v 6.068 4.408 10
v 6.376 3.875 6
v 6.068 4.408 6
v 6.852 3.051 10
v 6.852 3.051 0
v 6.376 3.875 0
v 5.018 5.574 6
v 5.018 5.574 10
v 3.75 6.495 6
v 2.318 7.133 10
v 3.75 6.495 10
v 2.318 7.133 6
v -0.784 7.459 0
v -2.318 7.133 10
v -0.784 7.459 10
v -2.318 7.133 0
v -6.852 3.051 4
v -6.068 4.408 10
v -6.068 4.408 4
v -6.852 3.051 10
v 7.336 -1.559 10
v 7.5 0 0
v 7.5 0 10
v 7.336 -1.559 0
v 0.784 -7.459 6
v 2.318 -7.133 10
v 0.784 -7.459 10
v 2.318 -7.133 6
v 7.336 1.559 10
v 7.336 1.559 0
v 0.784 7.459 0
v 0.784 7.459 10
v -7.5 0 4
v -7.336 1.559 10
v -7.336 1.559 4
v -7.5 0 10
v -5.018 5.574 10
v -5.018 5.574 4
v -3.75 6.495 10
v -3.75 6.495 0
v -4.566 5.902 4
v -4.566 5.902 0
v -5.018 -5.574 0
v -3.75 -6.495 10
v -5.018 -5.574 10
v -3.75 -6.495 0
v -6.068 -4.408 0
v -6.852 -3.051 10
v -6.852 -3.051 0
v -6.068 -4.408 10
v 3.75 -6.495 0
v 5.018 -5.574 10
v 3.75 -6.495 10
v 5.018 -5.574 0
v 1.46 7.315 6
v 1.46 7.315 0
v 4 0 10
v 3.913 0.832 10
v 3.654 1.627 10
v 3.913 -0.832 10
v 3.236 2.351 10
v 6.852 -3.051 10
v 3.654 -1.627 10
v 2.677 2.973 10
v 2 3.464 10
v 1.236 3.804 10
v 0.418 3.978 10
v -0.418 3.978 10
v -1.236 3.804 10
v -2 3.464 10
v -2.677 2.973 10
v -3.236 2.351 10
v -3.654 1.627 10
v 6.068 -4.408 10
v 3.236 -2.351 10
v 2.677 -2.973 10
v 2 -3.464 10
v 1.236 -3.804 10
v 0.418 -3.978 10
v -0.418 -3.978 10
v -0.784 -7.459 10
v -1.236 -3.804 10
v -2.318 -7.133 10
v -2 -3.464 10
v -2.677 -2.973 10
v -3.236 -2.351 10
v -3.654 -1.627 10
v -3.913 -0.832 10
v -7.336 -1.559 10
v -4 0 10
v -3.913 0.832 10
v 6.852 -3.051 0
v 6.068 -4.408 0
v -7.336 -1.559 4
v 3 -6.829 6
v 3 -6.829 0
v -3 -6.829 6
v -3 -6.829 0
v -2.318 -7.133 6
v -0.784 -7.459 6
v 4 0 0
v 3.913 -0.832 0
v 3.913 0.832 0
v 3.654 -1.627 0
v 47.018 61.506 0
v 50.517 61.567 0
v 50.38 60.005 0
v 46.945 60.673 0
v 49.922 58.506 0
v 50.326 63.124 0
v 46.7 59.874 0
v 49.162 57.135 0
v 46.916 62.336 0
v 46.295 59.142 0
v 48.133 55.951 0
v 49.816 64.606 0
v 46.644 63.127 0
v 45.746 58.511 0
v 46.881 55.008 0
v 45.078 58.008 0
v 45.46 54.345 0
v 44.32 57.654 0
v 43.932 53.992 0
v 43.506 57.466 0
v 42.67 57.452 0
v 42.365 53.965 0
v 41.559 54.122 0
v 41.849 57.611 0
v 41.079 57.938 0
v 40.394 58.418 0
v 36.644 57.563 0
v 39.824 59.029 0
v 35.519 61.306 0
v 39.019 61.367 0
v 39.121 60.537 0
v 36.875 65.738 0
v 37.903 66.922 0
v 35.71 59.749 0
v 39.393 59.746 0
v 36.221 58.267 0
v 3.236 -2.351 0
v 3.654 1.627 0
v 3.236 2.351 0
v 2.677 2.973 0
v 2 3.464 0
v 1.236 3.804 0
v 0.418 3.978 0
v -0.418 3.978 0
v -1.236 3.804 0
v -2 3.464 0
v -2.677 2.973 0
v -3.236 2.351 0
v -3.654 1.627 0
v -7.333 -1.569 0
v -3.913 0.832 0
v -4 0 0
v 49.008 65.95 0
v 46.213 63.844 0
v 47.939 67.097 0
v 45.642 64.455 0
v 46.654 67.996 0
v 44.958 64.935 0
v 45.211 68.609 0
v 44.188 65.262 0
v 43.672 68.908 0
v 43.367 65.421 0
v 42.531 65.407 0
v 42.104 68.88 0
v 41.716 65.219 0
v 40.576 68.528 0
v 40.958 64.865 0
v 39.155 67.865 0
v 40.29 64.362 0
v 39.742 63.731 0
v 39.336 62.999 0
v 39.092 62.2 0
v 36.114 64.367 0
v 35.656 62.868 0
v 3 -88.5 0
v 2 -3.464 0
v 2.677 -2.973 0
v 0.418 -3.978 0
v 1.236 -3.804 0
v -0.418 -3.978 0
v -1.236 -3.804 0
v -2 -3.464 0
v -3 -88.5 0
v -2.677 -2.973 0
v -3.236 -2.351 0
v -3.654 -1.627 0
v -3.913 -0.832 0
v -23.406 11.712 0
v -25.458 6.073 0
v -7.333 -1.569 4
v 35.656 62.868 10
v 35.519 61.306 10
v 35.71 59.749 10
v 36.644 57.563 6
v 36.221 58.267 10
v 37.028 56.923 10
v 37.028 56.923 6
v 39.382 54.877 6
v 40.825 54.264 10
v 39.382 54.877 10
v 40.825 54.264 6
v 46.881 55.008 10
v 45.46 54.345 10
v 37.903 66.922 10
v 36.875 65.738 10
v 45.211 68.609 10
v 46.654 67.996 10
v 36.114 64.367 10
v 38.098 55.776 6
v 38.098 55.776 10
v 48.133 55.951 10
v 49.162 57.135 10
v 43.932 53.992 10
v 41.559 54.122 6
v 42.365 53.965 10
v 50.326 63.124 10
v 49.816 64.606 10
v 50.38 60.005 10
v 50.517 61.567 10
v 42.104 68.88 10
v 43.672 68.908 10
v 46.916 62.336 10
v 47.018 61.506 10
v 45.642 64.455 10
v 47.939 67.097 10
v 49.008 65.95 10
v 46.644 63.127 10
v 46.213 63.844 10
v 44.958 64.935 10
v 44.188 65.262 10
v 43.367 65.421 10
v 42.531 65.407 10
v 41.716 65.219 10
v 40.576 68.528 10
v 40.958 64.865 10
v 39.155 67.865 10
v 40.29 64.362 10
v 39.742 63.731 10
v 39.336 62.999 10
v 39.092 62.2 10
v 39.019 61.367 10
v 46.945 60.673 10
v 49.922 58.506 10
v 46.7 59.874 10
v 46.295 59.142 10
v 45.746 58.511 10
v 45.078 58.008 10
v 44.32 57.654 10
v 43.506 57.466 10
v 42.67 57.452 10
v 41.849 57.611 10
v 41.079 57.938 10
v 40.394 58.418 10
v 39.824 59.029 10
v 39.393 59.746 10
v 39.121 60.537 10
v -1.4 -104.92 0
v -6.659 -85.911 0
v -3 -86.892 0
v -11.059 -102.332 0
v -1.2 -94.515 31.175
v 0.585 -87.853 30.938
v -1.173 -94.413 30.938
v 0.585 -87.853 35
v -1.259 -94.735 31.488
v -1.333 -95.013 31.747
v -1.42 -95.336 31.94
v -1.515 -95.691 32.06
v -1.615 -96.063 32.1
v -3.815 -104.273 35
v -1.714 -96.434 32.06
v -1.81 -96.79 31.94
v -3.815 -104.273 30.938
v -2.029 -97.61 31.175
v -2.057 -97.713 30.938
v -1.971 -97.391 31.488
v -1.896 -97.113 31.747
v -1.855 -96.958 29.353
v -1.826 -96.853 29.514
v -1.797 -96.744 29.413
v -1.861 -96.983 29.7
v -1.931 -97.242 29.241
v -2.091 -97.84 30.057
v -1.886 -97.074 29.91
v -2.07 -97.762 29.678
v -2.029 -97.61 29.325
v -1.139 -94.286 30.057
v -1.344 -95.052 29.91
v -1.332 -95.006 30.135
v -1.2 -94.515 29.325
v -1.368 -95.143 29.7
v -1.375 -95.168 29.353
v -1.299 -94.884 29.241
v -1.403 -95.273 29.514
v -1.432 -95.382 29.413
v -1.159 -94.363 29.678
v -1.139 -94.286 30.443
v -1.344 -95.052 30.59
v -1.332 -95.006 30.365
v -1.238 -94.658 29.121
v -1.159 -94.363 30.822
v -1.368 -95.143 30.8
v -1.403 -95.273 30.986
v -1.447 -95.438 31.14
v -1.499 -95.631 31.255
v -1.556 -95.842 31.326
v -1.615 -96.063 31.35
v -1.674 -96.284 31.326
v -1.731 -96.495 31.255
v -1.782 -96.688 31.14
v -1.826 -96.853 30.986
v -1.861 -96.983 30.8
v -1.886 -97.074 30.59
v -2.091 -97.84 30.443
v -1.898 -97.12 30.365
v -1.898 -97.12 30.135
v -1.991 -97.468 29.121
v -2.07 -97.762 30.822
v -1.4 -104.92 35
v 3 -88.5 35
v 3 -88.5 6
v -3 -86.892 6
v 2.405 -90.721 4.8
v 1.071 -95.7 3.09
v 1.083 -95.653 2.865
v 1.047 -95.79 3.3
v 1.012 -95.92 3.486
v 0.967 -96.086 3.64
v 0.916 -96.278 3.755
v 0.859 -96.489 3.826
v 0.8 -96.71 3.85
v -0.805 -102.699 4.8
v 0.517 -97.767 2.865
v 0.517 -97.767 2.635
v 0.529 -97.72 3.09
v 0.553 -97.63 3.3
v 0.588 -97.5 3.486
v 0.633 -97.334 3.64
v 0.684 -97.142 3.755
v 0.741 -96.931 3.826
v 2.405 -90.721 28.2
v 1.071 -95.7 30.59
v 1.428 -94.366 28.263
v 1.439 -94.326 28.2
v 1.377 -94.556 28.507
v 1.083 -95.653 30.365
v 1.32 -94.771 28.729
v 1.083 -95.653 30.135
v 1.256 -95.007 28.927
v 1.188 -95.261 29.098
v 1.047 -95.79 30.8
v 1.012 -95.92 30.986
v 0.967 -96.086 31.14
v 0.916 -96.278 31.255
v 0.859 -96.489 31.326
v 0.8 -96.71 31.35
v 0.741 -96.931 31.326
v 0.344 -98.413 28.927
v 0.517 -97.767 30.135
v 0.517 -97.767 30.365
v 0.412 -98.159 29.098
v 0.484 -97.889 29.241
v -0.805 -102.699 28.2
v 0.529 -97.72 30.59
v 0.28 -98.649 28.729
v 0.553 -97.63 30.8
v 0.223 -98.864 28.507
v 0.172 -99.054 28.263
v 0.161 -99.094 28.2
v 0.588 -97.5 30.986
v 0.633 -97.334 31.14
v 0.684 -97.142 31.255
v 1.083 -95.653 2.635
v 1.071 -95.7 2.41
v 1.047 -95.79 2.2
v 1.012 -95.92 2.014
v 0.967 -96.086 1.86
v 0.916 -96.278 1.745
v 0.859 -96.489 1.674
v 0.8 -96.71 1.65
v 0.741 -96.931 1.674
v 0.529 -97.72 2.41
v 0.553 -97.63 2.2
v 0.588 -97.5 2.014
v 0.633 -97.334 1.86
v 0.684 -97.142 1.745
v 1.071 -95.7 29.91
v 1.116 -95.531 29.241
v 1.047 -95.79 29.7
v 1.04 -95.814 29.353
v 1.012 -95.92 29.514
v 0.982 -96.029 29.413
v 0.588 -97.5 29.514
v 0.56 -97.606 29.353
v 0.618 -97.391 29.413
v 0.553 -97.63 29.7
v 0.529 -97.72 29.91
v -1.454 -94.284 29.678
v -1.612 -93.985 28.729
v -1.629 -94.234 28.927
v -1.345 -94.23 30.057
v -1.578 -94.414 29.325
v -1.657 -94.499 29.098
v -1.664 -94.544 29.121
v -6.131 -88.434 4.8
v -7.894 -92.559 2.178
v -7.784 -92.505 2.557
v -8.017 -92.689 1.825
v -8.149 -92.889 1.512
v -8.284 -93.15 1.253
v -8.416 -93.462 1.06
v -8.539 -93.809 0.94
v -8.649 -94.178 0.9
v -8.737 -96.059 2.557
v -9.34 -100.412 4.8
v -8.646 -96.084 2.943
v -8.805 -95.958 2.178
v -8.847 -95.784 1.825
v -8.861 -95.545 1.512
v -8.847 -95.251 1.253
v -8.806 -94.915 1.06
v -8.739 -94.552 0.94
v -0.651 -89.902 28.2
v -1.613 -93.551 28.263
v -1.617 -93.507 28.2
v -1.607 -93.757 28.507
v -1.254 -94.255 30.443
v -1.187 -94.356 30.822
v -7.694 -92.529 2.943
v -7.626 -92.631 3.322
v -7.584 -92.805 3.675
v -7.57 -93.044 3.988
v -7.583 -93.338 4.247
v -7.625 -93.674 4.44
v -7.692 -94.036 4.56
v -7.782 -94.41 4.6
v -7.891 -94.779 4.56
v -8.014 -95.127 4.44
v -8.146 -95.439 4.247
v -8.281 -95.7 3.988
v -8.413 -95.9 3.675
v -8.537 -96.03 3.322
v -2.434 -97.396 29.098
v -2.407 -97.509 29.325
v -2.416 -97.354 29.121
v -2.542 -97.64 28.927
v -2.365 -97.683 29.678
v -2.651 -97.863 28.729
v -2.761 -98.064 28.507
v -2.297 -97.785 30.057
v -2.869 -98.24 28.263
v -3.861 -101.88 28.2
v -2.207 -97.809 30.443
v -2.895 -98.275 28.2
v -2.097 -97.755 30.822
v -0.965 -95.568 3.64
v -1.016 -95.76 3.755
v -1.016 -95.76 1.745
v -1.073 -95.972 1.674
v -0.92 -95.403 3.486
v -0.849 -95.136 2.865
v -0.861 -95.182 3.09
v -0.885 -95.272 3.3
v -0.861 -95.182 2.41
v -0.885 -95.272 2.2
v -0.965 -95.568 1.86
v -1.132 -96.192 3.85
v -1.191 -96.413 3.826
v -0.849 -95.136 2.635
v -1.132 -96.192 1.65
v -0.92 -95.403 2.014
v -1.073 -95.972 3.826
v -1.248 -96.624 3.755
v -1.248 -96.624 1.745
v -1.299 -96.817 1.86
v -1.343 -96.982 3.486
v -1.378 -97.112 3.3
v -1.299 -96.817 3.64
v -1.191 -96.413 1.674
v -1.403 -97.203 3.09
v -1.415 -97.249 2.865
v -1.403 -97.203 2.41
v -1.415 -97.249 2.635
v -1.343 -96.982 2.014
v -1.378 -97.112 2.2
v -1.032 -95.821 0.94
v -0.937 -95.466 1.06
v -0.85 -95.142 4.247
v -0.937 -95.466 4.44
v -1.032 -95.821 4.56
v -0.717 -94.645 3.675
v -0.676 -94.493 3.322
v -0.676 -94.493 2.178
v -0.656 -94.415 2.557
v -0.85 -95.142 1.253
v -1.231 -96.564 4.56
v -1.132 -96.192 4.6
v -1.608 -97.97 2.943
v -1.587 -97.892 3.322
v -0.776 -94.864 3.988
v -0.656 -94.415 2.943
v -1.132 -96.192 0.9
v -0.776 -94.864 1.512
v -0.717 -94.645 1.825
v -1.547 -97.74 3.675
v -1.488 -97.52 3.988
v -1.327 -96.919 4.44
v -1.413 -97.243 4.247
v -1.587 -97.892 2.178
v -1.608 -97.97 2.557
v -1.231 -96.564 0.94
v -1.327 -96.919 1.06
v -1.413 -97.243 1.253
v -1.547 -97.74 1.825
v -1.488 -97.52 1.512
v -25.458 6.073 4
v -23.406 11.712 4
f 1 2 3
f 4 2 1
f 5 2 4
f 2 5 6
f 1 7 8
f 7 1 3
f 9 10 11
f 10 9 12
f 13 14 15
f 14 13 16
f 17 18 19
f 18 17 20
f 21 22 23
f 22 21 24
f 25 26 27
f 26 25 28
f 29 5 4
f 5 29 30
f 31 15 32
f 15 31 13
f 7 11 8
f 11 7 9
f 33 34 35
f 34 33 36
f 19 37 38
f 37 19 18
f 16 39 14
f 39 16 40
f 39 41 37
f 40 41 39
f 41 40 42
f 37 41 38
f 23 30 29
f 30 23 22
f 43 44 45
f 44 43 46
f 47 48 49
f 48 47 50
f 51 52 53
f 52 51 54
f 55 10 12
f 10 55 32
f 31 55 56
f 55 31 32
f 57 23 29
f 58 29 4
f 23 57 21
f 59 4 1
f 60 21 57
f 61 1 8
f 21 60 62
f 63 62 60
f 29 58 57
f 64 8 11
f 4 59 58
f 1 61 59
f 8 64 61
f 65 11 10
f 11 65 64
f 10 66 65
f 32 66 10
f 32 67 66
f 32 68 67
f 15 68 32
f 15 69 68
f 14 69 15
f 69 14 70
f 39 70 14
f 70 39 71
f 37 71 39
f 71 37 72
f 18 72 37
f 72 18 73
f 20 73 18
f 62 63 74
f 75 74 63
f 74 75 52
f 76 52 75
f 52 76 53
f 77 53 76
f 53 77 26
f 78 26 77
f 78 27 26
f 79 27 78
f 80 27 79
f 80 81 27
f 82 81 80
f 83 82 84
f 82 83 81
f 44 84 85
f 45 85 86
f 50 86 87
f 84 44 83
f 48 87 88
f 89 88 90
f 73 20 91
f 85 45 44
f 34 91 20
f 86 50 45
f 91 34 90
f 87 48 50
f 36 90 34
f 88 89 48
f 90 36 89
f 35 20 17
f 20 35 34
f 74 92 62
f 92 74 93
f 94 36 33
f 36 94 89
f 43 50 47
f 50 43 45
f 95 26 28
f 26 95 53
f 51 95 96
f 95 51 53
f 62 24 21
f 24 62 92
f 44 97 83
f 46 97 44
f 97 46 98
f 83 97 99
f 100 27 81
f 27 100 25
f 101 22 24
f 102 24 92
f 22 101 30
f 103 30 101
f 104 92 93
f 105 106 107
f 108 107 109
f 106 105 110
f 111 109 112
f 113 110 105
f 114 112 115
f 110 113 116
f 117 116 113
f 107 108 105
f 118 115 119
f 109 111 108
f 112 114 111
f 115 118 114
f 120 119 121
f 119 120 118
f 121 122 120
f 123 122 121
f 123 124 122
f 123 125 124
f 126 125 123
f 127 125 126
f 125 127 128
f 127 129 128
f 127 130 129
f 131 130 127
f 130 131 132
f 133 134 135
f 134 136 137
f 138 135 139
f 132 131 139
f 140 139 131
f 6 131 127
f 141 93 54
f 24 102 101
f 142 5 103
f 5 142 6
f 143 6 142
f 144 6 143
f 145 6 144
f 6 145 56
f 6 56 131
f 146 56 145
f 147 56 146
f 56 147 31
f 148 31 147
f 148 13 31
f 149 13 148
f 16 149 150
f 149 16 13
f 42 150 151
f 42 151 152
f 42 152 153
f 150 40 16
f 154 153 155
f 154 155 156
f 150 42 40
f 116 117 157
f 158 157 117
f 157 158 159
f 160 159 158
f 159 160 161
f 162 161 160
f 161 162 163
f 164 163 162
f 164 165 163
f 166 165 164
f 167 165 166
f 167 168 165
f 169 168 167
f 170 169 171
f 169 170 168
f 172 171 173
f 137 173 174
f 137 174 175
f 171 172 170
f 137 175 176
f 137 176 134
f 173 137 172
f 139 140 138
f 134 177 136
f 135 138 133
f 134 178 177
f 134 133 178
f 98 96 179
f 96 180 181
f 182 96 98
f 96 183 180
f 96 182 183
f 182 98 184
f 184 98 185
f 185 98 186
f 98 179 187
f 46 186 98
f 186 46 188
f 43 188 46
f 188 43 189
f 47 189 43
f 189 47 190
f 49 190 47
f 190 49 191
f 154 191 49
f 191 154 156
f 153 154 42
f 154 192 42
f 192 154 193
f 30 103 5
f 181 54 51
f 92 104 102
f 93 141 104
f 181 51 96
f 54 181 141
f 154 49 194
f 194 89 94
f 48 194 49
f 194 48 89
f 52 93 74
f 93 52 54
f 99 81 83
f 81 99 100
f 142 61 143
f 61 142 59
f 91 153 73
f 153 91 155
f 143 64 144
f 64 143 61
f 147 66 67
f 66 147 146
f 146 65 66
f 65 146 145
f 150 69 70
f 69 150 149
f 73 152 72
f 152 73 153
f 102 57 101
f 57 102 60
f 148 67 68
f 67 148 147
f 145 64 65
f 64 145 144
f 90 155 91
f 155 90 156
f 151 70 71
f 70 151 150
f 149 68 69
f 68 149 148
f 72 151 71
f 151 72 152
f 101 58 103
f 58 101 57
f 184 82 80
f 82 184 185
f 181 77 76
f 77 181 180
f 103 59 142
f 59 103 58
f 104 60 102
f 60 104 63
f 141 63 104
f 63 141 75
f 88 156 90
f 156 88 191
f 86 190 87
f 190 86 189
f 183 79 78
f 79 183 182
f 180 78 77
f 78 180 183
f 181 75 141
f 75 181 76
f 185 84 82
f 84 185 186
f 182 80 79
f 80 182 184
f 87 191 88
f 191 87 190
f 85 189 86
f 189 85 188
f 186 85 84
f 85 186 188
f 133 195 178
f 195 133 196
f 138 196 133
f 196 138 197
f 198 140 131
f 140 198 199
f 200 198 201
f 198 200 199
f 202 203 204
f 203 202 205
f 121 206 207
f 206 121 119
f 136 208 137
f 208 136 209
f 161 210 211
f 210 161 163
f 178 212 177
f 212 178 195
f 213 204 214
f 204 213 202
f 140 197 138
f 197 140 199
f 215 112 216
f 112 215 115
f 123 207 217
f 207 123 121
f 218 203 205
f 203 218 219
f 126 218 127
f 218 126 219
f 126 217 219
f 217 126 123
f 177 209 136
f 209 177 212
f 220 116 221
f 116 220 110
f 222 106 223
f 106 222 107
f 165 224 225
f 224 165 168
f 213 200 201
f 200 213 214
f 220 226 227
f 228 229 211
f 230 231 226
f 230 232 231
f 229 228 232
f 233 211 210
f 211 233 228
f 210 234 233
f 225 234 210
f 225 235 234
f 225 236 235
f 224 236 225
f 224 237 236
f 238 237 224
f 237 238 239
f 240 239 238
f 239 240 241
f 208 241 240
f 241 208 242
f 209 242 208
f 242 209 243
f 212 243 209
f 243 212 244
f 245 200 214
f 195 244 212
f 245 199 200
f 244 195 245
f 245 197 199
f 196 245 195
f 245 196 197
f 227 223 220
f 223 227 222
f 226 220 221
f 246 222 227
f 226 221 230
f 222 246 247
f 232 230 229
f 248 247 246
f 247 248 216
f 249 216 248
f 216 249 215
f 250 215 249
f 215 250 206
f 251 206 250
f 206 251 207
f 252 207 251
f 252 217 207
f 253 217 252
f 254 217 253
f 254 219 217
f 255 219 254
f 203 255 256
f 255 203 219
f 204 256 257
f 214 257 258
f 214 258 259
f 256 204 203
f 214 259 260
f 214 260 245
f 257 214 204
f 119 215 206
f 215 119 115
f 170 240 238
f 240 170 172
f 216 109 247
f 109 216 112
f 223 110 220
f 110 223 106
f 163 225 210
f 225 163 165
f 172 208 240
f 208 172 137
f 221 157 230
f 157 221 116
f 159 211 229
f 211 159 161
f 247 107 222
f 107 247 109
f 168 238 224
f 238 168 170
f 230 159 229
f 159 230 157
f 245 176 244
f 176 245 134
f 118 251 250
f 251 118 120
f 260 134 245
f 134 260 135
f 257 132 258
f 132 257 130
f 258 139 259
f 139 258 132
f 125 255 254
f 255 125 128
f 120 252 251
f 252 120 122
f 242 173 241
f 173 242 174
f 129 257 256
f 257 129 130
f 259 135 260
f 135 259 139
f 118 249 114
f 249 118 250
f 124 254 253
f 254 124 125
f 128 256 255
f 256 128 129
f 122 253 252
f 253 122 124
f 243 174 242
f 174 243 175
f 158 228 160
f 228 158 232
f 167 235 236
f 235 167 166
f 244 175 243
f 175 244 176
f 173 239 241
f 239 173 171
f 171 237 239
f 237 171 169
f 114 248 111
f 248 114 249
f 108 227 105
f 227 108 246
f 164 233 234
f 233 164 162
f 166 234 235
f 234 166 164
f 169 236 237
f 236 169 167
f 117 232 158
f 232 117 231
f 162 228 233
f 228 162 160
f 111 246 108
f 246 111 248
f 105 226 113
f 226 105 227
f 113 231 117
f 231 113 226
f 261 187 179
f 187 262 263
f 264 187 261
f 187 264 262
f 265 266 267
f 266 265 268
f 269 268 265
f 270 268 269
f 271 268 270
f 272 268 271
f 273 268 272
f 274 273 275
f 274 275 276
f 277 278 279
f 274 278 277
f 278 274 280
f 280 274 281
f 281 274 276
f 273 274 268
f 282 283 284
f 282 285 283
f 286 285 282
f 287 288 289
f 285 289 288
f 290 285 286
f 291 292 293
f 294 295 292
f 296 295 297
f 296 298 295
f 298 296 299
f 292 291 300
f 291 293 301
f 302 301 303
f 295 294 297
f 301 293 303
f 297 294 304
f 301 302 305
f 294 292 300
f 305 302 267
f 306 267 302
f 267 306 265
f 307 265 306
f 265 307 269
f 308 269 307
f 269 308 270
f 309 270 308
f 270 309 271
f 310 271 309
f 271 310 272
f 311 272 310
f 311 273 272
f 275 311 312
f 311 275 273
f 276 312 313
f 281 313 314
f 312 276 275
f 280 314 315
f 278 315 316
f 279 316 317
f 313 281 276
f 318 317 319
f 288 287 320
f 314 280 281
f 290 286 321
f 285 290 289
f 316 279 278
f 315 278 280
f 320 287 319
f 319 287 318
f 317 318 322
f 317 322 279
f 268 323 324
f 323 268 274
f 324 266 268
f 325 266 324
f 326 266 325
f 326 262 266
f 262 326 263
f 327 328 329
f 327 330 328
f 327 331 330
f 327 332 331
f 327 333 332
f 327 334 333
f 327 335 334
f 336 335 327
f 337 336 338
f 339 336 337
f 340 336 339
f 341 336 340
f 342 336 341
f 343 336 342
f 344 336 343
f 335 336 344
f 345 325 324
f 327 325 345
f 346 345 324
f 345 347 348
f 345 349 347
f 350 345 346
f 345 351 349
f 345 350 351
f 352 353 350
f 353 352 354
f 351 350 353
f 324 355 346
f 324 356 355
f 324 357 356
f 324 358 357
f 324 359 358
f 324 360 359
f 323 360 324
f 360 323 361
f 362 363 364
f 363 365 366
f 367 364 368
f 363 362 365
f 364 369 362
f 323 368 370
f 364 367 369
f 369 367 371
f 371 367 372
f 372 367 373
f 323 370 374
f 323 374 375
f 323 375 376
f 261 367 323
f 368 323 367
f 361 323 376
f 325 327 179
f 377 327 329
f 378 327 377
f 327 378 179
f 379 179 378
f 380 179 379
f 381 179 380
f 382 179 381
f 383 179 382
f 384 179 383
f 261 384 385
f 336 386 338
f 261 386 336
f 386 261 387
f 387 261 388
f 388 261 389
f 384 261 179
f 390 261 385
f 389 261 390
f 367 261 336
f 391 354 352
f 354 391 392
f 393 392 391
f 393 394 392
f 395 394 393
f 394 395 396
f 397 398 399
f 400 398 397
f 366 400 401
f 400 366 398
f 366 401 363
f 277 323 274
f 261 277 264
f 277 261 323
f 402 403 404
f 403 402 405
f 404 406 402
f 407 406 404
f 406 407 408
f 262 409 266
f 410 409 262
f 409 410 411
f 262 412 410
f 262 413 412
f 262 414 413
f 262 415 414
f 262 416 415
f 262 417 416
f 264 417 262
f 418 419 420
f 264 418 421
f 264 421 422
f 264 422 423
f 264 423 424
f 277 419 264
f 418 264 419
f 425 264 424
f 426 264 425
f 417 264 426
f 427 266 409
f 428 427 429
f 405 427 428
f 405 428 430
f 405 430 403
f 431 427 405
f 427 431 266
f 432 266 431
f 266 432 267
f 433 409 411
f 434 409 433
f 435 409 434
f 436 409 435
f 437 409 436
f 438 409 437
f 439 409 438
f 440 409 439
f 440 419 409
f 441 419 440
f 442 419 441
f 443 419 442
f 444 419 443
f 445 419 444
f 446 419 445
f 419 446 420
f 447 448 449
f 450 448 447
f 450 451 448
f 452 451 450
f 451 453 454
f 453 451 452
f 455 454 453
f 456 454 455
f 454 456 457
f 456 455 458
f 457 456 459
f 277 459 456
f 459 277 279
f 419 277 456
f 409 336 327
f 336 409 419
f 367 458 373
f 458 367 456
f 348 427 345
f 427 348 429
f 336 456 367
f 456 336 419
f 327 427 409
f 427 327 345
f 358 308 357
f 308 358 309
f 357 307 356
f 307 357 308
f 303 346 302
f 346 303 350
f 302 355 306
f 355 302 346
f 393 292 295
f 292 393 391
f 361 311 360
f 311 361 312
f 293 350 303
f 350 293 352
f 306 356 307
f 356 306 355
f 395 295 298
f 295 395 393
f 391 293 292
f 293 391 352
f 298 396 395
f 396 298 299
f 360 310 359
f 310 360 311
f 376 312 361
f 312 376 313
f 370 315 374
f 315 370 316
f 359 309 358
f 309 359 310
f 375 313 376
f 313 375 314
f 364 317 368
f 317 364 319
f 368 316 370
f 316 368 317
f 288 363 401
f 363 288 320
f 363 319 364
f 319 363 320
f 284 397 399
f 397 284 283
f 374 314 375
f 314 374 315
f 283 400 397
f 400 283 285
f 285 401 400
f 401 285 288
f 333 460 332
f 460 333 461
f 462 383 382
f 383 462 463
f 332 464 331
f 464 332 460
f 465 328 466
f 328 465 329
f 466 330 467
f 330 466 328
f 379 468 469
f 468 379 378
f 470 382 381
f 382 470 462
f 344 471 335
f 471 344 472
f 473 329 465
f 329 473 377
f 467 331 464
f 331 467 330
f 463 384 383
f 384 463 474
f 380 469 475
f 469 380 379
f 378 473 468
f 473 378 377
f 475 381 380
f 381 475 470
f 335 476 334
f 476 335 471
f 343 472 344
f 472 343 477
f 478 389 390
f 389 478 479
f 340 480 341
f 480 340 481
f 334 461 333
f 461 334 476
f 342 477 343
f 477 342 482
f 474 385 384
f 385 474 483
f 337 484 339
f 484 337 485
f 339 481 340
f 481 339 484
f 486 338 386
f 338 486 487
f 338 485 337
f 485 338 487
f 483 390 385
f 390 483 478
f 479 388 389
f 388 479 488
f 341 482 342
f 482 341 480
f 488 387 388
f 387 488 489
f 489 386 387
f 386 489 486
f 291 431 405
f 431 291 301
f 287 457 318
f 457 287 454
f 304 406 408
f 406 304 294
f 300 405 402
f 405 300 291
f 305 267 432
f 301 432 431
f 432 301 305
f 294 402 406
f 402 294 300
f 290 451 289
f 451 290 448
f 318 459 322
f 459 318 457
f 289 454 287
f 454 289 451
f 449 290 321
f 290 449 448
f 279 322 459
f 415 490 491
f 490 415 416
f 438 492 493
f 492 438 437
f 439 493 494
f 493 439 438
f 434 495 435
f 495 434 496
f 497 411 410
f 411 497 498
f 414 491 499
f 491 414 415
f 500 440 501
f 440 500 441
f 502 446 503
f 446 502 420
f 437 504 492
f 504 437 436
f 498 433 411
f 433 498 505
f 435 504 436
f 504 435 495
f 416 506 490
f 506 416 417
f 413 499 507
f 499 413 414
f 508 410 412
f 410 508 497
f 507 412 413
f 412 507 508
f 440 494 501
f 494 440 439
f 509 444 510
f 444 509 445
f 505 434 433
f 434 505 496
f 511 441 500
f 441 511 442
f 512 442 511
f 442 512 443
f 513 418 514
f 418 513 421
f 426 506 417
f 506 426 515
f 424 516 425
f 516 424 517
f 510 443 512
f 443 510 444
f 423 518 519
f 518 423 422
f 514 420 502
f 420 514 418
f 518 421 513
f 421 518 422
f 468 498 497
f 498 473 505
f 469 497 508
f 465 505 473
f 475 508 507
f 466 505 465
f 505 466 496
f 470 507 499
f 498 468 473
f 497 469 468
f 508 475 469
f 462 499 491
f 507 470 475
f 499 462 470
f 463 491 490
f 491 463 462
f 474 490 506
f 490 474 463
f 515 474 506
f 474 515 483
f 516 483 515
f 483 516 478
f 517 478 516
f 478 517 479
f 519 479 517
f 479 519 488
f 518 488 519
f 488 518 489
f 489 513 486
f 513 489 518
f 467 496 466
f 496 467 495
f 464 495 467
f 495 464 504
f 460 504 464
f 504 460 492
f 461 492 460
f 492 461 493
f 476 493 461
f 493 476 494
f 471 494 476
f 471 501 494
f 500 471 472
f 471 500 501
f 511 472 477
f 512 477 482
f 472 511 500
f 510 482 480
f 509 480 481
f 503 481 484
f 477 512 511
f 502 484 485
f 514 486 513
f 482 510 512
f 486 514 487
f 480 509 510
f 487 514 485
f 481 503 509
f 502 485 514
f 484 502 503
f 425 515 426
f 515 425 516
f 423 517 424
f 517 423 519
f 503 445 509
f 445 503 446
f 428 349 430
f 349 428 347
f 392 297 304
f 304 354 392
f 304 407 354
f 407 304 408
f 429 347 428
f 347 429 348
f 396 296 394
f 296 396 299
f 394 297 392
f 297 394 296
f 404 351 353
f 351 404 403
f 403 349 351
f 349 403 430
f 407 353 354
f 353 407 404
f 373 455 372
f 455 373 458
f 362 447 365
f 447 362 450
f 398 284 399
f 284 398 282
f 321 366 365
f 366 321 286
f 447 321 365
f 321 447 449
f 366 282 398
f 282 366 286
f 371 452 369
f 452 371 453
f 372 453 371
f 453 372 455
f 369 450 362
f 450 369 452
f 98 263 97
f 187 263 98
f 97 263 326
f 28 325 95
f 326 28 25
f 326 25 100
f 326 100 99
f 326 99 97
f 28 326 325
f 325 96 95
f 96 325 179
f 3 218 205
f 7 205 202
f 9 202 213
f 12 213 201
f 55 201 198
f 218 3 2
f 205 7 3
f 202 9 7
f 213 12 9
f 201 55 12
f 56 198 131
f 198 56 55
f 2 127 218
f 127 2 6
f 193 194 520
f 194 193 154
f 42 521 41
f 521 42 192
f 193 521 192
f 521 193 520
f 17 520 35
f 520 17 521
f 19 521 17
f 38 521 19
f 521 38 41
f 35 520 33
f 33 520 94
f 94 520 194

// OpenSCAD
$fn=30;

translate([0.80,-96.71,16.5])rotate([0,-90,-15])
servo_bracket();

translate([-3,-88.5,0])cube([6,84.5,6]);

difference(){
cylinder(d=15,h=10);
translate([0,0,-1])cylinder(d=8,h=12);
}

rotate([0,0,145])
translate([-3,-70,0])cube([6,64.5,6]);

rotate([0,0,145])translate([0,-75,0])
difference(){
cylinder(d=15,h=10);
translate([0,0,-1])cylinder(d=8,h=12);
}

rotate([0,0,70]) translate([0,6,0])
linear_extrude(height=4)
polygon([[-4,0],[4,0],[3,20],[-3,20]]);

module servo_bracket(){
difference(){
union(){
translate([1,0,1.25])cube([35,17,2.5],center=true);
translate([0,8.5,2])
rotate([90,0,0])linear_extrude(height=17)
polygon([[-16.5,0],[16.5,0],[-16.5,8]]);
translate([13.75,0,0])cylinder(d=8,h=2,$fn=60);
}
cube([23.4,12.4,50],center=true);
translate([13.75,0,-1])cylinder(d=2.2,h=5,$fn=30);
translate([-13.75,0,-1])cylinder(d=2.2,h=50,$fn=30);
translate([13.75,0,2.5])cylinder(d=3.7,h=5,$fn=30);
translate([-13.75,0,2])cylinder(d=3.7,h=50,$fn=30);
translate([10,0,0])cylinder(d=6,h=12,$fn=60);
}
}
